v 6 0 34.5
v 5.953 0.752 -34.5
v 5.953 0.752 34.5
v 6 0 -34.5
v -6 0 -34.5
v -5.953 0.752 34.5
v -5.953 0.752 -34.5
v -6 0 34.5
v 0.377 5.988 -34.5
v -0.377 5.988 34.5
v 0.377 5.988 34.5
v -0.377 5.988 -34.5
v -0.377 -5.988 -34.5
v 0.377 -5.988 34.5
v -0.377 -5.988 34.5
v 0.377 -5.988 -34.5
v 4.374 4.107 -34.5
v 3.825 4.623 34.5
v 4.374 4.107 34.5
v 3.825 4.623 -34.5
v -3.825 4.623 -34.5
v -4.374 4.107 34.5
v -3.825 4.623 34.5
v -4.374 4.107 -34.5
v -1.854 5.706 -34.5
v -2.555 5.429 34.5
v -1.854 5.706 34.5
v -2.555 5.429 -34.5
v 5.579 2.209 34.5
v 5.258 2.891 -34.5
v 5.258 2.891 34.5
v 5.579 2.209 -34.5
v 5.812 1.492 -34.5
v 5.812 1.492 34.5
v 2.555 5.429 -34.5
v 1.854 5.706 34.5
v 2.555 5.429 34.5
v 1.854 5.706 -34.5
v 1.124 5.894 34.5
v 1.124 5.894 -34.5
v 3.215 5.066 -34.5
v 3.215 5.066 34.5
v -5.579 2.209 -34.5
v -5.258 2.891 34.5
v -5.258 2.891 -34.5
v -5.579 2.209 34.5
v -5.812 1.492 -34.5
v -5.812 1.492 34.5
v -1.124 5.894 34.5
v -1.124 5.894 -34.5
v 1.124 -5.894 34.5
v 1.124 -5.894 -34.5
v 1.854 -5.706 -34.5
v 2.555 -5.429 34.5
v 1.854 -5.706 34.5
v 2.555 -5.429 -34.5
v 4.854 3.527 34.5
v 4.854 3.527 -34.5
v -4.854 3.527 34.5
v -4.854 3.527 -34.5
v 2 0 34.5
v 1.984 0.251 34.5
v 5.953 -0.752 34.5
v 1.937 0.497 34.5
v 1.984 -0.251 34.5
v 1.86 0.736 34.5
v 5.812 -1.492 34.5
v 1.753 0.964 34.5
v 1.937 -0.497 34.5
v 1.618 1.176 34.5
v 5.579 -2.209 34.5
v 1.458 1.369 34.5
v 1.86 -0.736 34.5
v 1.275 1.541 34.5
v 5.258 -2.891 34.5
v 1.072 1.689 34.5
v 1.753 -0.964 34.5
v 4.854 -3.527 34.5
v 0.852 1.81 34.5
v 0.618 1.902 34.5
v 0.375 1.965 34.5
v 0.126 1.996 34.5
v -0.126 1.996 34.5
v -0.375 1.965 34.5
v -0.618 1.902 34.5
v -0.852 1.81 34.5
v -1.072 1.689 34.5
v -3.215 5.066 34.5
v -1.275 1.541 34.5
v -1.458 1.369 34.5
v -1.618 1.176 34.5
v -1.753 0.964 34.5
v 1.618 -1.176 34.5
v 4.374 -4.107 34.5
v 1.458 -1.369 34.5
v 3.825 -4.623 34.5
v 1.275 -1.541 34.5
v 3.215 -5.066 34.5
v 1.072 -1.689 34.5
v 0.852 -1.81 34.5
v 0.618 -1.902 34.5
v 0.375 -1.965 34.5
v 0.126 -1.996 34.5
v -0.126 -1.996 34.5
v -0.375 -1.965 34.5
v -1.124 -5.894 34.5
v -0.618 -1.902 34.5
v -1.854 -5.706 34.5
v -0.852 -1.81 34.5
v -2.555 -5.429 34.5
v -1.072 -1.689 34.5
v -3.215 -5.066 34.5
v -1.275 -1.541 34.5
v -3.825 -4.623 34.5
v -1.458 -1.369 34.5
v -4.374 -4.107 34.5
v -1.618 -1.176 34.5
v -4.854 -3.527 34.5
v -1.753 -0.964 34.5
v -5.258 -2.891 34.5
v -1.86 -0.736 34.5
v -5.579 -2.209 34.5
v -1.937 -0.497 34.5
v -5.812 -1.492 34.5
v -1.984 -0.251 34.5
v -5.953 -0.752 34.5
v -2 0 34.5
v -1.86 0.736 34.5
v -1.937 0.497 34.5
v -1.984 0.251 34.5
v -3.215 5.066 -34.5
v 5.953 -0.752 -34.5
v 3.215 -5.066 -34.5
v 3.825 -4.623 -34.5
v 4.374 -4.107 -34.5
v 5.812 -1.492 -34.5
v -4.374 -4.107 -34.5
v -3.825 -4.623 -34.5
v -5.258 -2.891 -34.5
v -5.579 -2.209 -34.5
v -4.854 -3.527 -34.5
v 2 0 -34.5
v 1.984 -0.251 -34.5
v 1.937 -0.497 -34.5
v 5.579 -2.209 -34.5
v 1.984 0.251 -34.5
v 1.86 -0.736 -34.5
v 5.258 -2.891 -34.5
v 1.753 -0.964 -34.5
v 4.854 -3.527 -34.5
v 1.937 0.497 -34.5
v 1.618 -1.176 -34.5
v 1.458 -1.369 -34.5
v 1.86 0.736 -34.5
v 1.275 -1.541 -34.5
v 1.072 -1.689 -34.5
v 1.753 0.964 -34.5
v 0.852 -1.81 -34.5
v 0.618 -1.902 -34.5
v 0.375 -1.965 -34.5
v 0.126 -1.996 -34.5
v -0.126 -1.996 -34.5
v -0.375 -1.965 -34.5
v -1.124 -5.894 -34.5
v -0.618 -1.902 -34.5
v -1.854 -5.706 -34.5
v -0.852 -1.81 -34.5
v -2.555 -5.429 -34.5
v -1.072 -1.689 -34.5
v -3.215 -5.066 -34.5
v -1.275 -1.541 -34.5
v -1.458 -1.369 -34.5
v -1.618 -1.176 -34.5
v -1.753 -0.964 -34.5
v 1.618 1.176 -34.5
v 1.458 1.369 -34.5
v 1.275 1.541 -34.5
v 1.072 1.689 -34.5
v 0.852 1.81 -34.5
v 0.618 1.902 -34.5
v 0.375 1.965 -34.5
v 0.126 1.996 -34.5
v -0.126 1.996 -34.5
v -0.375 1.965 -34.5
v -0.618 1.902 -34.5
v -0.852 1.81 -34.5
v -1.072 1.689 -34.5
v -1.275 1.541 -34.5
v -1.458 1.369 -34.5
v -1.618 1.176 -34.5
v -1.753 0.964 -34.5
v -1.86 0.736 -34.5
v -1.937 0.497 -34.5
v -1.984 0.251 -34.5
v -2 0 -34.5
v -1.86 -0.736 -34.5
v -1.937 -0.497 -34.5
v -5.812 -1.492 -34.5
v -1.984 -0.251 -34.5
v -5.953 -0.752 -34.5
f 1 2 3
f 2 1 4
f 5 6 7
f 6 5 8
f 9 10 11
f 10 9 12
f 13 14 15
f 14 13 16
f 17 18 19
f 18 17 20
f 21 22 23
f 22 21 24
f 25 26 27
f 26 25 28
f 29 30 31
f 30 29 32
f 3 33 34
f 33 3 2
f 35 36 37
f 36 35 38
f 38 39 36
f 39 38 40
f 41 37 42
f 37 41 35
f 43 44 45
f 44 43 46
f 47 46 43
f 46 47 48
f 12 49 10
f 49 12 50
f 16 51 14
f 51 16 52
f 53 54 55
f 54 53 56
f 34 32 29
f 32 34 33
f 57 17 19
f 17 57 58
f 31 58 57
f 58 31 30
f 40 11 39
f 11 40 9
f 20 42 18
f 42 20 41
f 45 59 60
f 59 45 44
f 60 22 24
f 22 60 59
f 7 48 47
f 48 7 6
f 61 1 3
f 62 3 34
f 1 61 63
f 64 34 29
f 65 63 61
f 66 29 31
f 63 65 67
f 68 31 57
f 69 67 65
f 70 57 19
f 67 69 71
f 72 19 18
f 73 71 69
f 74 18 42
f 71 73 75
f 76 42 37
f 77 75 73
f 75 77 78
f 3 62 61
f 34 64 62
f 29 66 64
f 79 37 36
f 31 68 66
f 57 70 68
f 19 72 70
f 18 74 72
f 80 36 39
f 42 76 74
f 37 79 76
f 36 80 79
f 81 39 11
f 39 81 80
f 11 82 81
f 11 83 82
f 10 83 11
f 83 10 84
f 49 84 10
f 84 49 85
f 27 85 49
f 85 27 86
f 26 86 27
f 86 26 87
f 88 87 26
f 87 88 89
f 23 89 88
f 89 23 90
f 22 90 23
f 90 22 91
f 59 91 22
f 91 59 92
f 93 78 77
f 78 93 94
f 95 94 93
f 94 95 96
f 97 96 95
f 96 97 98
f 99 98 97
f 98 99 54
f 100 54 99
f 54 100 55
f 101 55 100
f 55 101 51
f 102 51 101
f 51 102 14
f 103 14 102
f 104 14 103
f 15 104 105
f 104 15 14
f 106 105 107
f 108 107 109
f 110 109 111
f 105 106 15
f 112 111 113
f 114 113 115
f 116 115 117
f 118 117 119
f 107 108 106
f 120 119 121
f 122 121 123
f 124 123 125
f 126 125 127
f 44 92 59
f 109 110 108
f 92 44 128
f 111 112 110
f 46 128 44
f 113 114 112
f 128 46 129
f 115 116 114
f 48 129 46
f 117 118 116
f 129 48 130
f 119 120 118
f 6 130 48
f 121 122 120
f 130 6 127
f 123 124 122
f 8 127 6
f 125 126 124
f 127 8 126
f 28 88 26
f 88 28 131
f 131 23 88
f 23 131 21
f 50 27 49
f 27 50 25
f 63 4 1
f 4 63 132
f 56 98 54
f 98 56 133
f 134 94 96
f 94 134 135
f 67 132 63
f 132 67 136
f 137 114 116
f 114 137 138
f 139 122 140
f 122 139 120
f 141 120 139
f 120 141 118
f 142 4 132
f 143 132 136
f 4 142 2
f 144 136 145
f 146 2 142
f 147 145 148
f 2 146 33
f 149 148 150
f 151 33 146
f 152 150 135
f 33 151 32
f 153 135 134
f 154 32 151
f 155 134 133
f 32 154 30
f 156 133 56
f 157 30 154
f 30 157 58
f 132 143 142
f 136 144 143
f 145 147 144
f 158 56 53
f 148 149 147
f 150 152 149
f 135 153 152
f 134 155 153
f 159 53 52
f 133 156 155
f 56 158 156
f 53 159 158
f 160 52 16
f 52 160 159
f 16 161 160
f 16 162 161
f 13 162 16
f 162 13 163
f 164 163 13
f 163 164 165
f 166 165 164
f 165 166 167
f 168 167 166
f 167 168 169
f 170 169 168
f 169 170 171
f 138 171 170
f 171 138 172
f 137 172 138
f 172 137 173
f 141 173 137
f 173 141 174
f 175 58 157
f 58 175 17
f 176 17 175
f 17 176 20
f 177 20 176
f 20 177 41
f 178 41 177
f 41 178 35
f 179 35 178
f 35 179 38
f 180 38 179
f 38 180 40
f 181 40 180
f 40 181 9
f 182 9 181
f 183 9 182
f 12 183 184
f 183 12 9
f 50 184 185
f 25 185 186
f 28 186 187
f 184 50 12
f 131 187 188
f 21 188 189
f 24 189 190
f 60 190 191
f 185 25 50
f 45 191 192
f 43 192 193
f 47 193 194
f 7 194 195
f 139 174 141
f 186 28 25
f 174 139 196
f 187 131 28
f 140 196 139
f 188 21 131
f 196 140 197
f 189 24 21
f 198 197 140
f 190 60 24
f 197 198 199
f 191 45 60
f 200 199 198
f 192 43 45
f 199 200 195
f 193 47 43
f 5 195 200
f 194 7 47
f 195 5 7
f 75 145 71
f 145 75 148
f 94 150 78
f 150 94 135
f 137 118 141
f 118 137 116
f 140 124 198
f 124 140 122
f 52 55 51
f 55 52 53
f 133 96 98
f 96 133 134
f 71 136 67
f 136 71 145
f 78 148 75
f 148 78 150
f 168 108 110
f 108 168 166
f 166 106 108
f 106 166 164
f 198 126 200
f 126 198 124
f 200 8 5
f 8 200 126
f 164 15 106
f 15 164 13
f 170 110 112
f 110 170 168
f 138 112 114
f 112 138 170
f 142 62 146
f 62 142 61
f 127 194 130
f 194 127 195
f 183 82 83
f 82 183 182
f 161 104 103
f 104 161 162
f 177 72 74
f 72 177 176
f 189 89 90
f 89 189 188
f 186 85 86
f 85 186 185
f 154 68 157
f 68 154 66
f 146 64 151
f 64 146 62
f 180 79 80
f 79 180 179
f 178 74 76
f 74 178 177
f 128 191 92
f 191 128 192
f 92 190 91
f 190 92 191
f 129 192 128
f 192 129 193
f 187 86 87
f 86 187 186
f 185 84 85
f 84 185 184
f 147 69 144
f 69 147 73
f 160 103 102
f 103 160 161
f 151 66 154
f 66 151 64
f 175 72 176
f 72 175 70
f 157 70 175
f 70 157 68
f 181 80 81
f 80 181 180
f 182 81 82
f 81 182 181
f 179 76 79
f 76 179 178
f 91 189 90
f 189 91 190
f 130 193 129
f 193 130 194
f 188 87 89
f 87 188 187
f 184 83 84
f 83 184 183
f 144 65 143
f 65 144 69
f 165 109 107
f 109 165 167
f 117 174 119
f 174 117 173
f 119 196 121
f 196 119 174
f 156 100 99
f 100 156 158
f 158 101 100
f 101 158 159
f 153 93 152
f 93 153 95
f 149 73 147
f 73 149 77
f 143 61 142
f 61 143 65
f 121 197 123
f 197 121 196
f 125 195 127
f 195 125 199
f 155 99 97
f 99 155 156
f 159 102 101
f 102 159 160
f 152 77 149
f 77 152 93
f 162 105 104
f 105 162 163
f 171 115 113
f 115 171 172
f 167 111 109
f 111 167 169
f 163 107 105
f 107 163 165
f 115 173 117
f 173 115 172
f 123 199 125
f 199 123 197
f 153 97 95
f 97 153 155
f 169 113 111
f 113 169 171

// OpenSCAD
$fn = 50;


difference() {
	union() {
		translate(v = [0, 0, -34.5000000000]) {
			cylinder(h = 69, r = 6.0000000000);
		}
	}
	union() {
		translate(v = [0, 0, -100.0000000000]) {
			cylinder(h = 200, r = 2);
		}
	}
}
